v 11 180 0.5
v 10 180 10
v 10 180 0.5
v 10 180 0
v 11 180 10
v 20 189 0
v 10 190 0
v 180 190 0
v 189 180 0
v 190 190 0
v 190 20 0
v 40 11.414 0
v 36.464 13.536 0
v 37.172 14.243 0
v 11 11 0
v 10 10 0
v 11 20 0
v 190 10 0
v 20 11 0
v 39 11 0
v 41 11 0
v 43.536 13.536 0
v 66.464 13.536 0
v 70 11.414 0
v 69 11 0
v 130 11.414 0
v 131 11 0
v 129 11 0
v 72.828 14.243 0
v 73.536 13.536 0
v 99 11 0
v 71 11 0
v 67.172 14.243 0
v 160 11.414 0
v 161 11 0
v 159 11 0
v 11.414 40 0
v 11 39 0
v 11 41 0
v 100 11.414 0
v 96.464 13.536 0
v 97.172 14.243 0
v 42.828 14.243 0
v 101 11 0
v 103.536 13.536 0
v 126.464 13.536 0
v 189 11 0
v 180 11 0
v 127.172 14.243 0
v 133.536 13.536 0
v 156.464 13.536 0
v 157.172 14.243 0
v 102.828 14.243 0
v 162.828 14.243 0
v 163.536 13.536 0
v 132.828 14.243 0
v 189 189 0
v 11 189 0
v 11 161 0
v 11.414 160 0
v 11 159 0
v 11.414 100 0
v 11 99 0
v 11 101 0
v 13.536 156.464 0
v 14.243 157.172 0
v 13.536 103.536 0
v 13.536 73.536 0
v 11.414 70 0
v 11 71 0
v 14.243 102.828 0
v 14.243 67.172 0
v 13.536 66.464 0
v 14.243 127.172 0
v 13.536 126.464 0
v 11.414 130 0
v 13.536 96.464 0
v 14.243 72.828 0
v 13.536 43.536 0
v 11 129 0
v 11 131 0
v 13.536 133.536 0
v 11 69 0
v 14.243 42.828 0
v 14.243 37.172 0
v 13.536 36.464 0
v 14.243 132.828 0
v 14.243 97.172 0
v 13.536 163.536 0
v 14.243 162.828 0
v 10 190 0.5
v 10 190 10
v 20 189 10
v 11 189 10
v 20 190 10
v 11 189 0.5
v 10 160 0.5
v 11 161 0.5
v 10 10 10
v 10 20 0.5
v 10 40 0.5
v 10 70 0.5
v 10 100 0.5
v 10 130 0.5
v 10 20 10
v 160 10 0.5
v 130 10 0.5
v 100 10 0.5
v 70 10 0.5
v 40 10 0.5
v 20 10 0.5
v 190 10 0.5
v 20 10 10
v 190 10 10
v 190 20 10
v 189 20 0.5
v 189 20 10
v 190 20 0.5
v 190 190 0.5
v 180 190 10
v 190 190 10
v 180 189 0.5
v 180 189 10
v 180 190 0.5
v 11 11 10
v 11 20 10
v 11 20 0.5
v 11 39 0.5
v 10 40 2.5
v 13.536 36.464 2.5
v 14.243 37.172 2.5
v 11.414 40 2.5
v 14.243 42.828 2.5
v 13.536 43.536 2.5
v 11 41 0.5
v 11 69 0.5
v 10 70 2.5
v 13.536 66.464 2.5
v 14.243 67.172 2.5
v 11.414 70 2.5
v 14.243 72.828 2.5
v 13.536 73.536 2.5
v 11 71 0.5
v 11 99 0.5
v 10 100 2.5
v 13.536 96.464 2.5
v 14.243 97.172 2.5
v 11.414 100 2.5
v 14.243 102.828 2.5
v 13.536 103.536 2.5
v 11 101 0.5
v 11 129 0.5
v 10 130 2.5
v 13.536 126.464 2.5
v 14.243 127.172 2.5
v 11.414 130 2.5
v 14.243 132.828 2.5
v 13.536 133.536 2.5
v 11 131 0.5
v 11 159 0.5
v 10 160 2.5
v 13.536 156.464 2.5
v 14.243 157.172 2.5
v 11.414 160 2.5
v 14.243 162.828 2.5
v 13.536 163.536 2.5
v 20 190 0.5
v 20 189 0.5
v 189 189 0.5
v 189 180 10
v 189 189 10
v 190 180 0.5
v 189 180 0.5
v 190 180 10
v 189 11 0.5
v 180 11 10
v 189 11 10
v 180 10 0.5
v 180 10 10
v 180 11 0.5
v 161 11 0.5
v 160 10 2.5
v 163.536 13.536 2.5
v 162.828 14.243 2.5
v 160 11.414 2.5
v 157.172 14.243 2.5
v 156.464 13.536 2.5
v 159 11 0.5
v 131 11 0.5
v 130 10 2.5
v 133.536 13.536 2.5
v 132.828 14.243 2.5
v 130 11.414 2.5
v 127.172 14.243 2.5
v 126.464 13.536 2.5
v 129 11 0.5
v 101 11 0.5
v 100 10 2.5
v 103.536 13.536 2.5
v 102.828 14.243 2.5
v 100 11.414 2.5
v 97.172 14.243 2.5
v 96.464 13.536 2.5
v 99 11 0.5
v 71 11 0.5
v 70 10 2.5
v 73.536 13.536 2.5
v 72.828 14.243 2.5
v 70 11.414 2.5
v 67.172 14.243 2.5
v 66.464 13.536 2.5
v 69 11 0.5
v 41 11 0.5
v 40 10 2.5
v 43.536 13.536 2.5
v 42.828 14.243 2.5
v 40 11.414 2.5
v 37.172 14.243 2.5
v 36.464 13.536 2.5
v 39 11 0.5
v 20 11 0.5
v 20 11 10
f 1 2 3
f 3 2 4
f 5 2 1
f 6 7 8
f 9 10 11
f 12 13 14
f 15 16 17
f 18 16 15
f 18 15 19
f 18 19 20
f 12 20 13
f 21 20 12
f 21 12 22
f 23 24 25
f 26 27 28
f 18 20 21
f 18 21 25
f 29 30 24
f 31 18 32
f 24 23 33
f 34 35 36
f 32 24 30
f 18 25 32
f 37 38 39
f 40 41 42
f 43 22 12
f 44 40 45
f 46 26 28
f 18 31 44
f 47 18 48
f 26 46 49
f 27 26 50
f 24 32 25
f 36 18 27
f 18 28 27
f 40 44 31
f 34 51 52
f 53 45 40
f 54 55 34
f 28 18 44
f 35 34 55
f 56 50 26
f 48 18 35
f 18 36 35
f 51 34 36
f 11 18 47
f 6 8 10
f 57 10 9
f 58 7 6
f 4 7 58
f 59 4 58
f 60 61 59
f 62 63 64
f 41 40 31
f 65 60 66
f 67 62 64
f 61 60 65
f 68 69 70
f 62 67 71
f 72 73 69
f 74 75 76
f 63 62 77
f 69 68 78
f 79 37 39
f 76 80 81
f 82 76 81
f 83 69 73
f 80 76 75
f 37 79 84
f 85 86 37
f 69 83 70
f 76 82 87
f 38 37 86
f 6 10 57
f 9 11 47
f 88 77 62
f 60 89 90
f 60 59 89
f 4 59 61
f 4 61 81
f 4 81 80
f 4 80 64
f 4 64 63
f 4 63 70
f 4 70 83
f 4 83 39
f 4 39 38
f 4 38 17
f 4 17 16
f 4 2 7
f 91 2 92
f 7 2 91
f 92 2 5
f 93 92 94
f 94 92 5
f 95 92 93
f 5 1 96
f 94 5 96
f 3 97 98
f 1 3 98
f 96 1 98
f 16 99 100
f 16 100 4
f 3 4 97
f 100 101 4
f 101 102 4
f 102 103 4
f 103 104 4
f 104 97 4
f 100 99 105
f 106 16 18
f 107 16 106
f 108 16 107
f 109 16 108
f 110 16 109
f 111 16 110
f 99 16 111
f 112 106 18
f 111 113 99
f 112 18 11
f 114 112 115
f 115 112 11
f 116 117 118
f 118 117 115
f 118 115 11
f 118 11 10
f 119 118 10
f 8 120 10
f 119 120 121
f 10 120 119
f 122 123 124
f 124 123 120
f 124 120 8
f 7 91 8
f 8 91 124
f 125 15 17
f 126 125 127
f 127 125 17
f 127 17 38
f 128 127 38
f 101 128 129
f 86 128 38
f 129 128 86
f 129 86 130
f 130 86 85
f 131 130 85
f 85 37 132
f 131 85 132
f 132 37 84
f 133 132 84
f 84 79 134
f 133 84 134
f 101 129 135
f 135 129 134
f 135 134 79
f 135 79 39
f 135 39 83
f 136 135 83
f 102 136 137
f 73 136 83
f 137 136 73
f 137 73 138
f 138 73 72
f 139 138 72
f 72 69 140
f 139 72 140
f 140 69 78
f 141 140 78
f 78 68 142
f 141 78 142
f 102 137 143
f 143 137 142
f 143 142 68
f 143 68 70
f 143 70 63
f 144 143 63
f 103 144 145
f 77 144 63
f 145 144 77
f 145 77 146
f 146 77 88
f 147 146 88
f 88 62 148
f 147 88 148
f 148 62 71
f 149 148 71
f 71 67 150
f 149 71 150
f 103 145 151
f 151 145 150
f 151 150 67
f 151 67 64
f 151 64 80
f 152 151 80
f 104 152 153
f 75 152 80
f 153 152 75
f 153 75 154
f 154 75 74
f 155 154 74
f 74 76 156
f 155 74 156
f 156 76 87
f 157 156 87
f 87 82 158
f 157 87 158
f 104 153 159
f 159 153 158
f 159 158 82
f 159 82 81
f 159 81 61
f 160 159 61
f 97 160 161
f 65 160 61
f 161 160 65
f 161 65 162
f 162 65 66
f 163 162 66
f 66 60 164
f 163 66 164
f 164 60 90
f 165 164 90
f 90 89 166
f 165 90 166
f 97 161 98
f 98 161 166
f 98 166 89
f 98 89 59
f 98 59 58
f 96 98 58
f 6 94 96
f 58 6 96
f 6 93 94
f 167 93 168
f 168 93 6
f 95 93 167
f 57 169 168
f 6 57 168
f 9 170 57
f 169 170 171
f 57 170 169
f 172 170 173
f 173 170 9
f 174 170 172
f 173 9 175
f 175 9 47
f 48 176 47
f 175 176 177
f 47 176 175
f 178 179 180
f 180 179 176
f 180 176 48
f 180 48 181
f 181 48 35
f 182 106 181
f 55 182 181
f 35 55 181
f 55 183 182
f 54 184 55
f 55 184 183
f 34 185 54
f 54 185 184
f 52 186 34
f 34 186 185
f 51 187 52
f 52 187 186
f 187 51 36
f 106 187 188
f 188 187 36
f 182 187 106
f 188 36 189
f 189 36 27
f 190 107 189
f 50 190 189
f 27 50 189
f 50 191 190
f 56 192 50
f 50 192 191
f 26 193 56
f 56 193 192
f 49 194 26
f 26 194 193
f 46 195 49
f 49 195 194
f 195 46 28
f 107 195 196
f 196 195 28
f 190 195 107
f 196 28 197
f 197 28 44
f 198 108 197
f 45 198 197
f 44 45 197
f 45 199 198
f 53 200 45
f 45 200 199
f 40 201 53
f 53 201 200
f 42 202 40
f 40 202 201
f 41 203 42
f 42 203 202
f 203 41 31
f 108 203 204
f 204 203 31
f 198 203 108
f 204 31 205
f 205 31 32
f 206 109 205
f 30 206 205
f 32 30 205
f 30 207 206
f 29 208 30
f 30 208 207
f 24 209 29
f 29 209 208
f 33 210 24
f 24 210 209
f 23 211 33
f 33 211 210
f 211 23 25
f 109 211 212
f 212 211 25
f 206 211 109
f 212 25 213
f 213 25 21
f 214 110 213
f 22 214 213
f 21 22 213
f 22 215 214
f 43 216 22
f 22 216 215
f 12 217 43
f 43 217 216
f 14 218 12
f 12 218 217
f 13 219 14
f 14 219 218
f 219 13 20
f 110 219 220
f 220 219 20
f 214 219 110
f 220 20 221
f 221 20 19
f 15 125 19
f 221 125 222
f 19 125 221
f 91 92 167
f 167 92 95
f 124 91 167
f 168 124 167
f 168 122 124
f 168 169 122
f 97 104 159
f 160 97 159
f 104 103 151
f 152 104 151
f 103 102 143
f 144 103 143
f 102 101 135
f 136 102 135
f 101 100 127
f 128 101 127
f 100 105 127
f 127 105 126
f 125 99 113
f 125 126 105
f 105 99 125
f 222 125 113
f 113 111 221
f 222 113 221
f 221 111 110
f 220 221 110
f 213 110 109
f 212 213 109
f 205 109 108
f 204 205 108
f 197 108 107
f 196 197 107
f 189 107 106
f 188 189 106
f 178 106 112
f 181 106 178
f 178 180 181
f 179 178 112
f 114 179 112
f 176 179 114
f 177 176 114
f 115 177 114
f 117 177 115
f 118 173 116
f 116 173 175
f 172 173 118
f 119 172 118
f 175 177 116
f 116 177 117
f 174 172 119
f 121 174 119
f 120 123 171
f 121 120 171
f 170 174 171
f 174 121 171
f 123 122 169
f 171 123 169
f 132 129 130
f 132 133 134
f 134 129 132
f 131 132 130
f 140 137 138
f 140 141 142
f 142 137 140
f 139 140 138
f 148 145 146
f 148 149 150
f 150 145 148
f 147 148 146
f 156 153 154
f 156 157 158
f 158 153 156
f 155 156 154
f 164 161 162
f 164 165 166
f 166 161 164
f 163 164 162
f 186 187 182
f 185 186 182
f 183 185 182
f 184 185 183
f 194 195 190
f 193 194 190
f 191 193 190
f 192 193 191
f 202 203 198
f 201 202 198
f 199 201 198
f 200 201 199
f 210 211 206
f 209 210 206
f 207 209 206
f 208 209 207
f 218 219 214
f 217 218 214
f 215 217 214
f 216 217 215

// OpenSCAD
// Kinematic Calibration print-in-place calibration fixture
// Useful for measuring the motion of the bed using a portable CMM such as a ROMER arm.
// Spreadsheet to process measurements found at https://docs.google.com/spreadsheet/ccc?key=0Asb6Jfk9hsyhdHVHcmZvMFFjYUI0WHFuZVdjbXZZX2c&usp=sharing 

BedX = 200;
BedY = 200;
OuterClearence = 10; // space left outside each side for skirts, brims, etc.

CornerHeight = 10;
CornerLength = 10;
CornerThickness = 1;


ConnectionHeight = .5; // set to 0 to remove
ConnectionThickness = 1;


%cube([BedX, BedY, 0.1]); // preview print bed area

union()
{
	translate([OuterClearence, OuterClearence, 0]) corner(); //Front Left. Is it necessary to do this translation? Of course not, it just makes more sense when reading the code.
	
	translate([ BedX - OuterClearence, OuterClearence, 0]) rotate([0,0,90]) corner(); // Front Right
	
	translate([ BedX - OuterClearence, + BedY - OuterClearence, 0]) rotate([0,0,180]) corner(); // back right
	
	translate([ OuterClearence, BedY - OuterClearence, 0]) rotate([0,0,270]) corner(); // back left
	
	// Connecting Rim to help hold the corners in place
	difference()
	{
		translate([OuterClearence, OuterClearence, 0]) cube([BedX - OuterClearence - OuterClearence, BedY - OuterClearence - OuterClearence, ConnectionHeight]); // Lay down a thin film
	
		translate([OuterClearence + ConnectionThickness, OuterClearence + ConnectionThickness, 0]) cube([BedX - OuterClearence - OuterClearence - ConnectionThickness - ConnectionThickness, BedY - OuterClearence - OuterClearence - ConnectionThickness - ConnectionThickness, ConnectionHeight]); // remove most of the intior                    --
	}

// Lets do some leanear travel guages
// Front 
translate([ (BedX) * .2, OuterClearence, 0]) rotate([0,0,45]) smallcorner(); 
translate([ (BedX) * .35, OuterClearence, 0]) rotate([0,0,45]) smallcorner(); 
translate([ (BedX) * .5, OuterClearence, 0]) rotate([0,0,45])  smallcorner(); 
translate([ (BedX) * .65, OuterClearence, 0]) rotate([0,0,45])  smallcorner(); 
translate([ (BedX) * .8, OuterClearence, 0]) rotate([0,0,45])  smallcorner(); 

// Left
translate([ OuterClearence, (BedY)  * .2, 0]) rotate([0,0,315]) smallcorner(); // back left
translate([ OuterClearence, (BedY)  * .35, 0]) rotate([0,0,315]) smallcorner(); // back left
translate([ OuterClearence, (BedY)  * .5, 0]) rotate([0,0,315]) smallcorner(); // back left
translate([ OuterClearence, (BedY)  * .65, 0]) rotate([0,0,315]) smallcorner(); // back left
translate([ OuterClearence, (BedY)  * .8, 0]) rotate([0,0,315]) smallcorner(); // back left


}


module corner()
{
	union()
	{
		cube([CornerLength, CornerThickness, CornerHeight]);
		cube([CornerThickness, CornerLength, CornerHeight]);
	}
}

module smallcorner()
{
	union()
	{
		cube([CornerLength/2, CornerThickness, CornerHeight/4]);
		cube([CornerThickness, CornerLength/2, CornerHeight/4]);
	}
}
